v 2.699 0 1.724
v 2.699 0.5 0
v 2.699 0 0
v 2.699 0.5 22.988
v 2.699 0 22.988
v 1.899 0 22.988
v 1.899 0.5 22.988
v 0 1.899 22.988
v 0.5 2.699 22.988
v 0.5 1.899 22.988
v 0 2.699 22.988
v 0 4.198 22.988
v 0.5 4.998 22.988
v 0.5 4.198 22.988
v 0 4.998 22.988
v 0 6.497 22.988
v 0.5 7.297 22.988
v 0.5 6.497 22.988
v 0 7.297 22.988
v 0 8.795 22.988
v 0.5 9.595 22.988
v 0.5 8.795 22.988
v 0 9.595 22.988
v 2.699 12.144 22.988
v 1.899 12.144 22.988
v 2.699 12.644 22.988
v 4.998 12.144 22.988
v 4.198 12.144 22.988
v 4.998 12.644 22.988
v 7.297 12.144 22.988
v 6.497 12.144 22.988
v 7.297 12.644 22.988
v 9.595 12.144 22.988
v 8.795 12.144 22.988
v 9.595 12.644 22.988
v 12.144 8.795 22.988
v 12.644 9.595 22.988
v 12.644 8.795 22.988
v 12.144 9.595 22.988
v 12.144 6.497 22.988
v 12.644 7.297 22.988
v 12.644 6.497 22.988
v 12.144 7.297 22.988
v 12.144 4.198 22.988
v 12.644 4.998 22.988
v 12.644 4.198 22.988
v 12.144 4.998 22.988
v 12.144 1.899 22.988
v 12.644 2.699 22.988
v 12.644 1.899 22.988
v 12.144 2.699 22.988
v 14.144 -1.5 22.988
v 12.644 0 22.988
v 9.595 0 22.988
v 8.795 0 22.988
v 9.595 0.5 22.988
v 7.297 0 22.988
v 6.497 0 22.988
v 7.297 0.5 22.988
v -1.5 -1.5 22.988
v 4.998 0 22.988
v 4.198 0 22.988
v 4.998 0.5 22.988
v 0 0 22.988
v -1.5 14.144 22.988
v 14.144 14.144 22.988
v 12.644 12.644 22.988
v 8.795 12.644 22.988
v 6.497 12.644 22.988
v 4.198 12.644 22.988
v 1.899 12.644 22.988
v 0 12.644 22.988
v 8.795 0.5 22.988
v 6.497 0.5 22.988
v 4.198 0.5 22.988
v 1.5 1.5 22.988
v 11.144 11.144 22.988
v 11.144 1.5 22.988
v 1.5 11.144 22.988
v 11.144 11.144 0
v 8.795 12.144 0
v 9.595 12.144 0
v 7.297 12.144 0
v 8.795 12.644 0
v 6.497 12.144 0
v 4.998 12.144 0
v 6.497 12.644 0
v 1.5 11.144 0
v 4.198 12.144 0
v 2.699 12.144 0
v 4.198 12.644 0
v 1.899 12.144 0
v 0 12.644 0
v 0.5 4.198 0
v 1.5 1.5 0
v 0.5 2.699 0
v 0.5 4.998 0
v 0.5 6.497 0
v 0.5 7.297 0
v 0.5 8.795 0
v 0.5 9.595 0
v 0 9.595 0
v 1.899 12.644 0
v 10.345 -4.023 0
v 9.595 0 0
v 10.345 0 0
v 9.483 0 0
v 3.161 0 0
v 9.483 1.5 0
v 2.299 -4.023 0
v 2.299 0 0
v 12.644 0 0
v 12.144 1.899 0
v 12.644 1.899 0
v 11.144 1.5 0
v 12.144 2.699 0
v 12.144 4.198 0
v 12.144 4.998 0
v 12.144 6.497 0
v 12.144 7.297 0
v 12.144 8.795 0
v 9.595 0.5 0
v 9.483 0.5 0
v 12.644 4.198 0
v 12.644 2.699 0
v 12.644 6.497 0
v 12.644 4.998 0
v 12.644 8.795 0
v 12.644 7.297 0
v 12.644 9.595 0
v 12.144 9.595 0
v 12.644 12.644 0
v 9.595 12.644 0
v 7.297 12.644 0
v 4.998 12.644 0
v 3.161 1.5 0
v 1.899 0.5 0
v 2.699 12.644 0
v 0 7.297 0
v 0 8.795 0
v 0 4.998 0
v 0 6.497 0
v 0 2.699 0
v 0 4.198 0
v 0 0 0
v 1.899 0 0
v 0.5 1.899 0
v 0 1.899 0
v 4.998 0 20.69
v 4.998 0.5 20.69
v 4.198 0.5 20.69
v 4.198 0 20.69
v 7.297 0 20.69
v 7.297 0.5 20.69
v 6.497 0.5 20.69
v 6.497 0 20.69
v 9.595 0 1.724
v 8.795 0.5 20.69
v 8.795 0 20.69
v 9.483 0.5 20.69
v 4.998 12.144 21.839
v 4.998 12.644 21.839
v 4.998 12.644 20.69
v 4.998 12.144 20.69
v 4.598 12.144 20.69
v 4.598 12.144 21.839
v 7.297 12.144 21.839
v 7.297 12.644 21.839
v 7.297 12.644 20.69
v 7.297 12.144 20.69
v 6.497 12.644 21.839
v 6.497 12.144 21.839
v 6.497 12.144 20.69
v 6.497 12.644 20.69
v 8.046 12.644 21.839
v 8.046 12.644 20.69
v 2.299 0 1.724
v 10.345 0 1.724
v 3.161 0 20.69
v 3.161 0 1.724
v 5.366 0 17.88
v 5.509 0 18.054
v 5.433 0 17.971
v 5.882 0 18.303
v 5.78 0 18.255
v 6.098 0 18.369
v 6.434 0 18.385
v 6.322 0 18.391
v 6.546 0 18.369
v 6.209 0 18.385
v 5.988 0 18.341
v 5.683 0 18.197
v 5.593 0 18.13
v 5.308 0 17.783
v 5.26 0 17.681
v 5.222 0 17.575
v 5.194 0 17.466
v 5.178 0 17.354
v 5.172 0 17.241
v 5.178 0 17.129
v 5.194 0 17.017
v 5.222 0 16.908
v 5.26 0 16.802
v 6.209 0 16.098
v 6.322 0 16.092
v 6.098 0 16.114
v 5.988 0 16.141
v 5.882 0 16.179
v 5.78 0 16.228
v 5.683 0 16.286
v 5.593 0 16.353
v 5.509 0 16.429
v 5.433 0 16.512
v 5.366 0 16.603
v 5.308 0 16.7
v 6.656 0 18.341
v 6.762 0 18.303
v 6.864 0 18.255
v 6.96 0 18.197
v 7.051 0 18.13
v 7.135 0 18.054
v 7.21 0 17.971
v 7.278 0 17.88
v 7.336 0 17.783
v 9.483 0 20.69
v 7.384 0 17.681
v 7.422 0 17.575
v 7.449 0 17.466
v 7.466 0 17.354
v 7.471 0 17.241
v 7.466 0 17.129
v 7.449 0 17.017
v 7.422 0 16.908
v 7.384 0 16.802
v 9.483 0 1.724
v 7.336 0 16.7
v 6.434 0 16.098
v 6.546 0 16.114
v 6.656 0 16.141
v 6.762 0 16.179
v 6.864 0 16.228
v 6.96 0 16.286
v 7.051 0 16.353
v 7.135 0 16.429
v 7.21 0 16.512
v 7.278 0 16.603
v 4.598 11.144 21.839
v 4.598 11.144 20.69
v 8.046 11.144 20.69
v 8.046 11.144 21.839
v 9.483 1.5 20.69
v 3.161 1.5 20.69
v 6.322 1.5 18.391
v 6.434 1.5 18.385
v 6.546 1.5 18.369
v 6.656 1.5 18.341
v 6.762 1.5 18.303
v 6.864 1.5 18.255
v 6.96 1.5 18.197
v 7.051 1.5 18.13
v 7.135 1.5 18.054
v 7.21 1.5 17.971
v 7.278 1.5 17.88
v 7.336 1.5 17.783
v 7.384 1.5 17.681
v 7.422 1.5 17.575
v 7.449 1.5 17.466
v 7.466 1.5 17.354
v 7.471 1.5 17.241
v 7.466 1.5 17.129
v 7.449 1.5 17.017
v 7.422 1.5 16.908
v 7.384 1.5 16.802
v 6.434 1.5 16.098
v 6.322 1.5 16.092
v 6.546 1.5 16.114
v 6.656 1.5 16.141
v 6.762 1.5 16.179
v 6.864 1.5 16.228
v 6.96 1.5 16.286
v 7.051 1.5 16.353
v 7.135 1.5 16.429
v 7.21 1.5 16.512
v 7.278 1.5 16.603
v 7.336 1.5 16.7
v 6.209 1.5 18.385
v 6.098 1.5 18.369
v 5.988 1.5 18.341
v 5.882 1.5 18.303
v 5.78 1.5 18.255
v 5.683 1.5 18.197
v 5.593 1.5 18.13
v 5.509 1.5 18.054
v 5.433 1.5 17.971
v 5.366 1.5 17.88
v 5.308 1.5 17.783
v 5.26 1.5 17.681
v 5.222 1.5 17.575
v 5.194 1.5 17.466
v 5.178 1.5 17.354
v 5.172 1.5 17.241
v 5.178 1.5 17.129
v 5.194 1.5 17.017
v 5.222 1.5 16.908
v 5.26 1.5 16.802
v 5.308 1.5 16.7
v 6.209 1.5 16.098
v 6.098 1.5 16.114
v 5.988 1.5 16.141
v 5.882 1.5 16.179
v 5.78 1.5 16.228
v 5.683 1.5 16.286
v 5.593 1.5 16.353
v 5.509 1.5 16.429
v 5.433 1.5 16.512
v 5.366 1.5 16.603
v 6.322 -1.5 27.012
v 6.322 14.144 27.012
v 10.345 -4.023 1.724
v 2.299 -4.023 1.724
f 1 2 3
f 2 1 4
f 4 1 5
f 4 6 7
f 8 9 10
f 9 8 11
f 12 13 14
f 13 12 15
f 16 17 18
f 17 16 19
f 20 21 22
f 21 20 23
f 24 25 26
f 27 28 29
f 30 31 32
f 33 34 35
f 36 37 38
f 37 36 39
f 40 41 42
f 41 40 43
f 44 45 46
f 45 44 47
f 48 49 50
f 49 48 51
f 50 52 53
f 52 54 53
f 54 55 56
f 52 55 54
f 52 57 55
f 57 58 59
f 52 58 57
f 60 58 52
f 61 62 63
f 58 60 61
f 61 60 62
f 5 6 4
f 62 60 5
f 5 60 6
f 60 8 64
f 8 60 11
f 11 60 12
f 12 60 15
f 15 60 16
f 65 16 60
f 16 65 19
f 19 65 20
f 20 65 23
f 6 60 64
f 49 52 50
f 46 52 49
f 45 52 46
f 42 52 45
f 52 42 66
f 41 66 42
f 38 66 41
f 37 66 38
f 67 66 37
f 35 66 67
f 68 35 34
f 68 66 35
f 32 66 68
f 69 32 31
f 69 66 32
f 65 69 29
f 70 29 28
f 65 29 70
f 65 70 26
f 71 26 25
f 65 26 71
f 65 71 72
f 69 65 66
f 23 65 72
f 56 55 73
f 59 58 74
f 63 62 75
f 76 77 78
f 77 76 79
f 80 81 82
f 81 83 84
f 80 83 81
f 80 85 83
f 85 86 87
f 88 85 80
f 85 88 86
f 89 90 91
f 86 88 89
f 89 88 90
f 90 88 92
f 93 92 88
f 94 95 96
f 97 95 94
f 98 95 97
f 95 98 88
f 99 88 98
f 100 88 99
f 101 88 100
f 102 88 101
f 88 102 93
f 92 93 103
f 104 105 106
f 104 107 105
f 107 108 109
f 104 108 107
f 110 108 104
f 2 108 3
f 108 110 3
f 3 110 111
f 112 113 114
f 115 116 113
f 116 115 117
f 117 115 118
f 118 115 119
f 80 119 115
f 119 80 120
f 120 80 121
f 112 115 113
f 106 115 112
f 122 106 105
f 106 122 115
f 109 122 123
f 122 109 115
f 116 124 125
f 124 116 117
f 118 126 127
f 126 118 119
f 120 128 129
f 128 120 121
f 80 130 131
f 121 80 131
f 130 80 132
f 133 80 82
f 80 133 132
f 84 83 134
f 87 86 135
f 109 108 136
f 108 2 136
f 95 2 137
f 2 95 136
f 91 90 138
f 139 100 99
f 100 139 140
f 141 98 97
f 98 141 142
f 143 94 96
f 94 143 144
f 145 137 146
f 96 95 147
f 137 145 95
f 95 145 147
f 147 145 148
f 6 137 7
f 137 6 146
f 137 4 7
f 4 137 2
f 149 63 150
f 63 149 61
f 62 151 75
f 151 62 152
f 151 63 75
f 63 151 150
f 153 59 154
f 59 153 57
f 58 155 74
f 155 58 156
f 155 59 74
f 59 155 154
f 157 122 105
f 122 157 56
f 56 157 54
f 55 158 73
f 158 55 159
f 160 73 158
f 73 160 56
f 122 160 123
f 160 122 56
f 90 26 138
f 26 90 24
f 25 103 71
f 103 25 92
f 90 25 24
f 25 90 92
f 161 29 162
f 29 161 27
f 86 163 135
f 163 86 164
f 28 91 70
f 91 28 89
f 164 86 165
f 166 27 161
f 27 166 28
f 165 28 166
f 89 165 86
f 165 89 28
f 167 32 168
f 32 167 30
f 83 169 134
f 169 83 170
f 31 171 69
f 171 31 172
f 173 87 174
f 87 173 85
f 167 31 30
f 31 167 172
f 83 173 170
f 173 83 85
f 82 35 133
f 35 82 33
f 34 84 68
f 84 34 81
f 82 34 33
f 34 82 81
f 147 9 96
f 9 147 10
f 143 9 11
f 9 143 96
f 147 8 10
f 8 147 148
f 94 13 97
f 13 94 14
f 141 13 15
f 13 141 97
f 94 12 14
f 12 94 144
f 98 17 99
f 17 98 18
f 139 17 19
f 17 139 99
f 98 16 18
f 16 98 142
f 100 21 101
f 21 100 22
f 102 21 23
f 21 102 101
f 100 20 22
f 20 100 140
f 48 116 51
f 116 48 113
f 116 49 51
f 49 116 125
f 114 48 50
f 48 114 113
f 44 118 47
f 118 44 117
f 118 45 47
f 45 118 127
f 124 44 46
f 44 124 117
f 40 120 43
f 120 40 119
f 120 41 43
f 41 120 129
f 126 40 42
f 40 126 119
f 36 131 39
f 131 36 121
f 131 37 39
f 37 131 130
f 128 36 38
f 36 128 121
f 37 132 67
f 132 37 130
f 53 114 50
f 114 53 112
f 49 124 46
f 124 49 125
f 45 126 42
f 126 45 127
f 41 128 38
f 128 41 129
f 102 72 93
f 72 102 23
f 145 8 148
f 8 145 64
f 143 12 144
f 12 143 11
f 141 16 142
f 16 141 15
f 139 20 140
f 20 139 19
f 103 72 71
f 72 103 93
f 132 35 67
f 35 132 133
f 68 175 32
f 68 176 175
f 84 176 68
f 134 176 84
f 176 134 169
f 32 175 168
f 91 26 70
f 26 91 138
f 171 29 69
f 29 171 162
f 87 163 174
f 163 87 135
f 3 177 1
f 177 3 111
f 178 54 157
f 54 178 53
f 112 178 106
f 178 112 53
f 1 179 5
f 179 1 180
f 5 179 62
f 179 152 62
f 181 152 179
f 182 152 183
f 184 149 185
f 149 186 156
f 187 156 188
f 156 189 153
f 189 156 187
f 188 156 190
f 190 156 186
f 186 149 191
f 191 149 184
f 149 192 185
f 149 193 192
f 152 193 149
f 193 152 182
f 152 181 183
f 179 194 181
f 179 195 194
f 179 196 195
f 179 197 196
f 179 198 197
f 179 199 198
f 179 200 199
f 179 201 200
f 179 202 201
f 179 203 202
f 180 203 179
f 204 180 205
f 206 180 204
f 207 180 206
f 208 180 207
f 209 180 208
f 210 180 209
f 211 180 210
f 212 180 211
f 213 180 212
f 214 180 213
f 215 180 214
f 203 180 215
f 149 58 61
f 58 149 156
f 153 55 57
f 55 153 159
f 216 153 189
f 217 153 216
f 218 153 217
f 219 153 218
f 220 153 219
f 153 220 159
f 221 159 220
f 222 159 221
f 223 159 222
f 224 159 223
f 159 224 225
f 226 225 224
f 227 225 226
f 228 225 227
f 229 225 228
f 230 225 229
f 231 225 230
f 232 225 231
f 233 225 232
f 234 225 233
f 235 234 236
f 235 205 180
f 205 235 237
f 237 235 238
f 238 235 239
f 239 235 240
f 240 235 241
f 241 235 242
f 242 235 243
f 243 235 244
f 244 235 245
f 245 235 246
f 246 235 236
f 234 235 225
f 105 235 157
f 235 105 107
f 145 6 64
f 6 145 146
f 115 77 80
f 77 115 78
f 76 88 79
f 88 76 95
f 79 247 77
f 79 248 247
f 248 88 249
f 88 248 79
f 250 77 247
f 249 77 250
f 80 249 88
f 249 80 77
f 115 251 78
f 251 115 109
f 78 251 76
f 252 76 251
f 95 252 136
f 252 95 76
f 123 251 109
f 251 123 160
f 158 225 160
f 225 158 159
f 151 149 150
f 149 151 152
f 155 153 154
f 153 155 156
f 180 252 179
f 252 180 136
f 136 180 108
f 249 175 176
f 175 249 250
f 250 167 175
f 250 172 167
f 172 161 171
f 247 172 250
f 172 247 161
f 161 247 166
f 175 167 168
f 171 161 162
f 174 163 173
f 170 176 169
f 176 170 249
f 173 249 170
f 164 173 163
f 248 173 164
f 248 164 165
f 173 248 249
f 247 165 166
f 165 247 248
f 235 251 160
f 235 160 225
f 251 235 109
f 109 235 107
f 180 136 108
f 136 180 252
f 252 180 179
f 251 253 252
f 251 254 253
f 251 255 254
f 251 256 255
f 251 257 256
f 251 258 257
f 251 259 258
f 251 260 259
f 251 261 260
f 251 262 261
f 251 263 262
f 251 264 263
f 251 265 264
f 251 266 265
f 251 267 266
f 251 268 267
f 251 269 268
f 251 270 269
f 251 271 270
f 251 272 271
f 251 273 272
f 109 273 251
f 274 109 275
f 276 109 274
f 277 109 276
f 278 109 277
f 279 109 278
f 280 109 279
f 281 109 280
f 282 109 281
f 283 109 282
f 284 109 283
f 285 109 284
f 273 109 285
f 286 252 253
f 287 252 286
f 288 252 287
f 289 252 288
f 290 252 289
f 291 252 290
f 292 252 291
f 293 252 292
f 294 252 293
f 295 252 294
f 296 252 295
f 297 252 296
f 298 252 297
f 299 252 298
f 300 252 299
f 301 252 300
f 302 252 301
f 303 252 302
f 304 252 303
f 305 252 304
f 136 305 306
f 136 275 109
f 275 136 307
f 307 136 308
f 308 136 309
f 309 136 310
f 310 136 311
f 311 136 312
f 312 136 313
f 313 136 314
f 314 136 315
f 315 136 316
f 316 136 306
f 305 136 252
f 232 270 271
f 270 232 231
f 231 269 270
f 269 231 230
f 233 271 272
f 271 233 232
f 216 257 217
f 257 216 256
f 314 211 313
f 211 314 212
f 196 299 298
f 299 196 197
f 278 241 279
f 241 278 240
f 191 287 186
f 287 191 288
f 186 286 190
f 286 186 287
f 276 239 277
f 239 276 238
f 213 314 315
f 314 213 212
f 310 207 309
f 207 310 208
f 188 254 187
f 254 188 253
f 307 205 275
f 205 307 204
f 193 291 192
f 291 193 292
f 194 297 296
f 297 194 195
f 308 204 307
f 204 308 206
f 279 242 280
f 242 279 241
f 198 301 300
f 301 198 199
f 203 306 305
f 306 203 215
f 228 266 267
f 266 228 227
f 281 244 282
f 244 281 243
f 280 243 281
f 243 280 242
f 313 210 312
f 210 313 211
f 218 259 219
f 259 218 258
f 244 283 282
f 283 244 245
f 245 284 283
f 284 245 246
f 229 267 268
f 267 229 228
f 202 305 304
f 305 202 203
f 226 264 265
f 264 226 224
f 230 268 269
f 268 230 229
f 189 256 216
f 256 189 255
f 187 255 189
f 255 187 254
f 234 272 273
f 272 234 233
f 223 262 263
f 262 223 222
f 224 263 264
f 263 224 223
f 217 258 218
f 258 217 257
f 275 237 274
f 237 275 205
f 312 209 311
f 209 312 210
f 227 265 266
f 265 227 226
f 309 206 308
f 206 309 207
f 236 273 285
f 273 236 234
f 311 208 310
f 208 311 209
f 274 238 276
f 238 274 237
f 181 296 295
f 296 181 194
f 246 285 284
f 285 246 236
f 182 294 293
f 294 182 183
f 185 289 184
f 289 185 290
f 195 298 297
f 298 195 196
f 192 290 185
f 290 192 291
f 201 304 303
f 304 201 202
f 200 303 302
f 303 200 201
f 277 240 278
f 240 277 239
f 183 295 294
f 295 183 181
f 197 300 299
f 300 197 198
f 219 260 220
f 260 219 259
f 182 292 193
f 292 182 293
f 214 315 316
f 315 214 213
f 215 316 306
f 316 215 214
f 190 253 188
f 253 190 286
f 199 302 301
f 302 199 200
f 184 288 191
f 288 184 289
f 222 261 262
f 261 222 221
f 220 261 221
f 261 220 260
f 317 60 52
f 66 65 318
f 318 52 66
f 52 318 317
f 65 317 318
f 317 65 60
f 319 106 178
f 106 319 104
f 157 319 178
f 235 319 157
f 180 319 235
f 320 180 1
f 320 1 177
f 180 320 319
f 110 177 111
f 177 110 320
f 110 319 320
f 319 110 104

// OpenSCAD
/*
 * PROMPT: Polish outdoor toilet (sławojka) in H0 scale (1:87). Small wooden outhouse
 * with gabled roof, vertical plank texture on all exterior walls, traditional circular
 * moon cutout on door panel, ventilation slot on back wall near the top, and a small
 * concrete entrance step. FDM printable hollow shell open bottom, exterior detail only.
 */

$fn = 32;
S = 1 / 87;

// ── DIMENSIONS (real-world mm → H0 mm) ────────────────────────────────────────
wall_t       = 1.5;         // wall thickness, fixed for printability

bld_w        = 1100 * S;   // exterior width    12.6 mm
bld_d        = 1100 * S;   // exterior depth    12.6 mm
bld_h        = 2000 * S;   // wall height       23.0 mm

roof_rise    = 350  * S;   // gable peak rise    4.0 mm
roof_oh      = 1.5;        // roof overhang (H0 mm)

door_w       = 550  * S;   // door width         6.3 mm
door_h       = 1800 * S;   // door height       20.7 mm

moon_r       = 100  * S;   // moon cutout radius 1.15 mm
moon_z       = 1500 * S;   // moon centre height 17.2 mm

vent_w       = 300  * S;   // vent slot width    3.4 mm
vent_h       = 100  * S;   // vent slot height   1.15 mm
vent_z       = 1800 * S;   // vent bottom z     20.7 mm

step_w       = 700  * S;   // step width         8.0 mm
step_d       = 350  * S;   // step depth         4.0 mm
step_h       = 150  * S;   // step height        1.7 mm

plank_period = 200  * S;   // plank pitch        2.3 mm
groove_w     = 0.8;        // groove width (min feature size)
groove_d     = 0.5;        // groove depth

// ── DERIVED ───────────────────────────────────────────────────────────────────
n_planks_w = floor(bld_w / plank_period) - 1;  // interior groove count on width faces
n_planks_d = floor(bld_d / plank_period) - 1;  // interior groove count on depth faces

// ── MODULES ───────────────────────────────────────────────────────────────────

module shell() {
    difference() {
        cube([bld_w, bld_d, bld_h]);
        // hollow interior, open bottom
        translate([wall_t, wall_t, 0])
            cube([bld_w - 2*wall_t, bld_d - 2*wall_t, bld_h]);
        // door opening — front face (y = 0), horizontally centred
        translate([(bld_w - door_w)/2, -1, 0])
            cube([door_w, wall_t + 2, door_h]);
        // ventilation slot — back wall, horizontally centred, through-wall
        translate([(bld_w - vent_w)/2, bld_d - wall_t - 1, vent_z])
            cube([vent_w, wall_t + 2, vent_h]);
        // vertical plank grooves — front face
        for (i = [1 : n_planks_w]) {
            translate([i*plank_period - groove_w/2, -1, 0])
                cube([groove_w, groove_d + 1, bld_h]);
        }
        // vertical plank grooves — back face
        for (i = [1 : n_planks_w]) {
            translate([i*plank_period - groove_w/2, bld_d - groove_d, 0])
                cube([groove_w, groove_d + 1, bld_h]);
        }
        // vertical plank grooves — left face
        for (i = [1 : n_planks_d]) {
            translate([-1, i*plank_period - groove_w/2, 0])
                cube([groove_d + 1, groove_w, bld_h]);
        }
        // vertical plank grooves — right face
        for (i = [1 : n_planks_d]) {
            translate([bld_w - groove_d, i*plank_period - groove_w/2, 0])
                cube([groove_d + 1, groove_w, bld_h]);
        }
    }
}

module door_panel() {
    // flat door fill with traditional circular moon cutout
    dx = (bld_w - door_w) / 2;
    translate([dx, 0, 0]) {
        difference() {
            cube([door_w, wall_t, door_h]);
            translate([door_w/2, -1, moon_z])
                rotate([-90, 0, 0])
                    cylinder(r=moon_r, h=wall_t + 2, $fn=64);
        }
    }
}

module roof() {
    rw = bld_w + 2*roof_oh;
    rd = bld_d + 2*roof_oh;
    translate([-roof_oh, -roof_oh, bld_h])
    polyhedron(
        points = [
            [0,    0,  0],          // 0 front-left eave
            [rw,   0,  0],          // 1 front-right eave
            [rw,   rd, 0],          // 2 back-right eave
            [0,    rd, 0],          // 3 back-left eave
            [rw/2, 0,  roof_rise],  // 4 front ridge
            [rw/2, rd, roof_rise],  // 5 back ridge
        ],
        faces = [
            [0, 3, 2, 1],
            [0, 1, 4],
            [3, 5, 2],
            [1, 2, 5, 4],
            [0, 4, 5, 3],
        ]
    );
}

module entrance_step() {
    sx = (bld_w - step_w) / 2;
    translate([sx, -step_d, 0])
        cube([step_w, step_d, step_h]);
}

// ── ASSEMBLY ──────────────────────────────────────────────────────────────────
union() {
    shell();
    door_panel();
    roof();
    entrance_step();
}
